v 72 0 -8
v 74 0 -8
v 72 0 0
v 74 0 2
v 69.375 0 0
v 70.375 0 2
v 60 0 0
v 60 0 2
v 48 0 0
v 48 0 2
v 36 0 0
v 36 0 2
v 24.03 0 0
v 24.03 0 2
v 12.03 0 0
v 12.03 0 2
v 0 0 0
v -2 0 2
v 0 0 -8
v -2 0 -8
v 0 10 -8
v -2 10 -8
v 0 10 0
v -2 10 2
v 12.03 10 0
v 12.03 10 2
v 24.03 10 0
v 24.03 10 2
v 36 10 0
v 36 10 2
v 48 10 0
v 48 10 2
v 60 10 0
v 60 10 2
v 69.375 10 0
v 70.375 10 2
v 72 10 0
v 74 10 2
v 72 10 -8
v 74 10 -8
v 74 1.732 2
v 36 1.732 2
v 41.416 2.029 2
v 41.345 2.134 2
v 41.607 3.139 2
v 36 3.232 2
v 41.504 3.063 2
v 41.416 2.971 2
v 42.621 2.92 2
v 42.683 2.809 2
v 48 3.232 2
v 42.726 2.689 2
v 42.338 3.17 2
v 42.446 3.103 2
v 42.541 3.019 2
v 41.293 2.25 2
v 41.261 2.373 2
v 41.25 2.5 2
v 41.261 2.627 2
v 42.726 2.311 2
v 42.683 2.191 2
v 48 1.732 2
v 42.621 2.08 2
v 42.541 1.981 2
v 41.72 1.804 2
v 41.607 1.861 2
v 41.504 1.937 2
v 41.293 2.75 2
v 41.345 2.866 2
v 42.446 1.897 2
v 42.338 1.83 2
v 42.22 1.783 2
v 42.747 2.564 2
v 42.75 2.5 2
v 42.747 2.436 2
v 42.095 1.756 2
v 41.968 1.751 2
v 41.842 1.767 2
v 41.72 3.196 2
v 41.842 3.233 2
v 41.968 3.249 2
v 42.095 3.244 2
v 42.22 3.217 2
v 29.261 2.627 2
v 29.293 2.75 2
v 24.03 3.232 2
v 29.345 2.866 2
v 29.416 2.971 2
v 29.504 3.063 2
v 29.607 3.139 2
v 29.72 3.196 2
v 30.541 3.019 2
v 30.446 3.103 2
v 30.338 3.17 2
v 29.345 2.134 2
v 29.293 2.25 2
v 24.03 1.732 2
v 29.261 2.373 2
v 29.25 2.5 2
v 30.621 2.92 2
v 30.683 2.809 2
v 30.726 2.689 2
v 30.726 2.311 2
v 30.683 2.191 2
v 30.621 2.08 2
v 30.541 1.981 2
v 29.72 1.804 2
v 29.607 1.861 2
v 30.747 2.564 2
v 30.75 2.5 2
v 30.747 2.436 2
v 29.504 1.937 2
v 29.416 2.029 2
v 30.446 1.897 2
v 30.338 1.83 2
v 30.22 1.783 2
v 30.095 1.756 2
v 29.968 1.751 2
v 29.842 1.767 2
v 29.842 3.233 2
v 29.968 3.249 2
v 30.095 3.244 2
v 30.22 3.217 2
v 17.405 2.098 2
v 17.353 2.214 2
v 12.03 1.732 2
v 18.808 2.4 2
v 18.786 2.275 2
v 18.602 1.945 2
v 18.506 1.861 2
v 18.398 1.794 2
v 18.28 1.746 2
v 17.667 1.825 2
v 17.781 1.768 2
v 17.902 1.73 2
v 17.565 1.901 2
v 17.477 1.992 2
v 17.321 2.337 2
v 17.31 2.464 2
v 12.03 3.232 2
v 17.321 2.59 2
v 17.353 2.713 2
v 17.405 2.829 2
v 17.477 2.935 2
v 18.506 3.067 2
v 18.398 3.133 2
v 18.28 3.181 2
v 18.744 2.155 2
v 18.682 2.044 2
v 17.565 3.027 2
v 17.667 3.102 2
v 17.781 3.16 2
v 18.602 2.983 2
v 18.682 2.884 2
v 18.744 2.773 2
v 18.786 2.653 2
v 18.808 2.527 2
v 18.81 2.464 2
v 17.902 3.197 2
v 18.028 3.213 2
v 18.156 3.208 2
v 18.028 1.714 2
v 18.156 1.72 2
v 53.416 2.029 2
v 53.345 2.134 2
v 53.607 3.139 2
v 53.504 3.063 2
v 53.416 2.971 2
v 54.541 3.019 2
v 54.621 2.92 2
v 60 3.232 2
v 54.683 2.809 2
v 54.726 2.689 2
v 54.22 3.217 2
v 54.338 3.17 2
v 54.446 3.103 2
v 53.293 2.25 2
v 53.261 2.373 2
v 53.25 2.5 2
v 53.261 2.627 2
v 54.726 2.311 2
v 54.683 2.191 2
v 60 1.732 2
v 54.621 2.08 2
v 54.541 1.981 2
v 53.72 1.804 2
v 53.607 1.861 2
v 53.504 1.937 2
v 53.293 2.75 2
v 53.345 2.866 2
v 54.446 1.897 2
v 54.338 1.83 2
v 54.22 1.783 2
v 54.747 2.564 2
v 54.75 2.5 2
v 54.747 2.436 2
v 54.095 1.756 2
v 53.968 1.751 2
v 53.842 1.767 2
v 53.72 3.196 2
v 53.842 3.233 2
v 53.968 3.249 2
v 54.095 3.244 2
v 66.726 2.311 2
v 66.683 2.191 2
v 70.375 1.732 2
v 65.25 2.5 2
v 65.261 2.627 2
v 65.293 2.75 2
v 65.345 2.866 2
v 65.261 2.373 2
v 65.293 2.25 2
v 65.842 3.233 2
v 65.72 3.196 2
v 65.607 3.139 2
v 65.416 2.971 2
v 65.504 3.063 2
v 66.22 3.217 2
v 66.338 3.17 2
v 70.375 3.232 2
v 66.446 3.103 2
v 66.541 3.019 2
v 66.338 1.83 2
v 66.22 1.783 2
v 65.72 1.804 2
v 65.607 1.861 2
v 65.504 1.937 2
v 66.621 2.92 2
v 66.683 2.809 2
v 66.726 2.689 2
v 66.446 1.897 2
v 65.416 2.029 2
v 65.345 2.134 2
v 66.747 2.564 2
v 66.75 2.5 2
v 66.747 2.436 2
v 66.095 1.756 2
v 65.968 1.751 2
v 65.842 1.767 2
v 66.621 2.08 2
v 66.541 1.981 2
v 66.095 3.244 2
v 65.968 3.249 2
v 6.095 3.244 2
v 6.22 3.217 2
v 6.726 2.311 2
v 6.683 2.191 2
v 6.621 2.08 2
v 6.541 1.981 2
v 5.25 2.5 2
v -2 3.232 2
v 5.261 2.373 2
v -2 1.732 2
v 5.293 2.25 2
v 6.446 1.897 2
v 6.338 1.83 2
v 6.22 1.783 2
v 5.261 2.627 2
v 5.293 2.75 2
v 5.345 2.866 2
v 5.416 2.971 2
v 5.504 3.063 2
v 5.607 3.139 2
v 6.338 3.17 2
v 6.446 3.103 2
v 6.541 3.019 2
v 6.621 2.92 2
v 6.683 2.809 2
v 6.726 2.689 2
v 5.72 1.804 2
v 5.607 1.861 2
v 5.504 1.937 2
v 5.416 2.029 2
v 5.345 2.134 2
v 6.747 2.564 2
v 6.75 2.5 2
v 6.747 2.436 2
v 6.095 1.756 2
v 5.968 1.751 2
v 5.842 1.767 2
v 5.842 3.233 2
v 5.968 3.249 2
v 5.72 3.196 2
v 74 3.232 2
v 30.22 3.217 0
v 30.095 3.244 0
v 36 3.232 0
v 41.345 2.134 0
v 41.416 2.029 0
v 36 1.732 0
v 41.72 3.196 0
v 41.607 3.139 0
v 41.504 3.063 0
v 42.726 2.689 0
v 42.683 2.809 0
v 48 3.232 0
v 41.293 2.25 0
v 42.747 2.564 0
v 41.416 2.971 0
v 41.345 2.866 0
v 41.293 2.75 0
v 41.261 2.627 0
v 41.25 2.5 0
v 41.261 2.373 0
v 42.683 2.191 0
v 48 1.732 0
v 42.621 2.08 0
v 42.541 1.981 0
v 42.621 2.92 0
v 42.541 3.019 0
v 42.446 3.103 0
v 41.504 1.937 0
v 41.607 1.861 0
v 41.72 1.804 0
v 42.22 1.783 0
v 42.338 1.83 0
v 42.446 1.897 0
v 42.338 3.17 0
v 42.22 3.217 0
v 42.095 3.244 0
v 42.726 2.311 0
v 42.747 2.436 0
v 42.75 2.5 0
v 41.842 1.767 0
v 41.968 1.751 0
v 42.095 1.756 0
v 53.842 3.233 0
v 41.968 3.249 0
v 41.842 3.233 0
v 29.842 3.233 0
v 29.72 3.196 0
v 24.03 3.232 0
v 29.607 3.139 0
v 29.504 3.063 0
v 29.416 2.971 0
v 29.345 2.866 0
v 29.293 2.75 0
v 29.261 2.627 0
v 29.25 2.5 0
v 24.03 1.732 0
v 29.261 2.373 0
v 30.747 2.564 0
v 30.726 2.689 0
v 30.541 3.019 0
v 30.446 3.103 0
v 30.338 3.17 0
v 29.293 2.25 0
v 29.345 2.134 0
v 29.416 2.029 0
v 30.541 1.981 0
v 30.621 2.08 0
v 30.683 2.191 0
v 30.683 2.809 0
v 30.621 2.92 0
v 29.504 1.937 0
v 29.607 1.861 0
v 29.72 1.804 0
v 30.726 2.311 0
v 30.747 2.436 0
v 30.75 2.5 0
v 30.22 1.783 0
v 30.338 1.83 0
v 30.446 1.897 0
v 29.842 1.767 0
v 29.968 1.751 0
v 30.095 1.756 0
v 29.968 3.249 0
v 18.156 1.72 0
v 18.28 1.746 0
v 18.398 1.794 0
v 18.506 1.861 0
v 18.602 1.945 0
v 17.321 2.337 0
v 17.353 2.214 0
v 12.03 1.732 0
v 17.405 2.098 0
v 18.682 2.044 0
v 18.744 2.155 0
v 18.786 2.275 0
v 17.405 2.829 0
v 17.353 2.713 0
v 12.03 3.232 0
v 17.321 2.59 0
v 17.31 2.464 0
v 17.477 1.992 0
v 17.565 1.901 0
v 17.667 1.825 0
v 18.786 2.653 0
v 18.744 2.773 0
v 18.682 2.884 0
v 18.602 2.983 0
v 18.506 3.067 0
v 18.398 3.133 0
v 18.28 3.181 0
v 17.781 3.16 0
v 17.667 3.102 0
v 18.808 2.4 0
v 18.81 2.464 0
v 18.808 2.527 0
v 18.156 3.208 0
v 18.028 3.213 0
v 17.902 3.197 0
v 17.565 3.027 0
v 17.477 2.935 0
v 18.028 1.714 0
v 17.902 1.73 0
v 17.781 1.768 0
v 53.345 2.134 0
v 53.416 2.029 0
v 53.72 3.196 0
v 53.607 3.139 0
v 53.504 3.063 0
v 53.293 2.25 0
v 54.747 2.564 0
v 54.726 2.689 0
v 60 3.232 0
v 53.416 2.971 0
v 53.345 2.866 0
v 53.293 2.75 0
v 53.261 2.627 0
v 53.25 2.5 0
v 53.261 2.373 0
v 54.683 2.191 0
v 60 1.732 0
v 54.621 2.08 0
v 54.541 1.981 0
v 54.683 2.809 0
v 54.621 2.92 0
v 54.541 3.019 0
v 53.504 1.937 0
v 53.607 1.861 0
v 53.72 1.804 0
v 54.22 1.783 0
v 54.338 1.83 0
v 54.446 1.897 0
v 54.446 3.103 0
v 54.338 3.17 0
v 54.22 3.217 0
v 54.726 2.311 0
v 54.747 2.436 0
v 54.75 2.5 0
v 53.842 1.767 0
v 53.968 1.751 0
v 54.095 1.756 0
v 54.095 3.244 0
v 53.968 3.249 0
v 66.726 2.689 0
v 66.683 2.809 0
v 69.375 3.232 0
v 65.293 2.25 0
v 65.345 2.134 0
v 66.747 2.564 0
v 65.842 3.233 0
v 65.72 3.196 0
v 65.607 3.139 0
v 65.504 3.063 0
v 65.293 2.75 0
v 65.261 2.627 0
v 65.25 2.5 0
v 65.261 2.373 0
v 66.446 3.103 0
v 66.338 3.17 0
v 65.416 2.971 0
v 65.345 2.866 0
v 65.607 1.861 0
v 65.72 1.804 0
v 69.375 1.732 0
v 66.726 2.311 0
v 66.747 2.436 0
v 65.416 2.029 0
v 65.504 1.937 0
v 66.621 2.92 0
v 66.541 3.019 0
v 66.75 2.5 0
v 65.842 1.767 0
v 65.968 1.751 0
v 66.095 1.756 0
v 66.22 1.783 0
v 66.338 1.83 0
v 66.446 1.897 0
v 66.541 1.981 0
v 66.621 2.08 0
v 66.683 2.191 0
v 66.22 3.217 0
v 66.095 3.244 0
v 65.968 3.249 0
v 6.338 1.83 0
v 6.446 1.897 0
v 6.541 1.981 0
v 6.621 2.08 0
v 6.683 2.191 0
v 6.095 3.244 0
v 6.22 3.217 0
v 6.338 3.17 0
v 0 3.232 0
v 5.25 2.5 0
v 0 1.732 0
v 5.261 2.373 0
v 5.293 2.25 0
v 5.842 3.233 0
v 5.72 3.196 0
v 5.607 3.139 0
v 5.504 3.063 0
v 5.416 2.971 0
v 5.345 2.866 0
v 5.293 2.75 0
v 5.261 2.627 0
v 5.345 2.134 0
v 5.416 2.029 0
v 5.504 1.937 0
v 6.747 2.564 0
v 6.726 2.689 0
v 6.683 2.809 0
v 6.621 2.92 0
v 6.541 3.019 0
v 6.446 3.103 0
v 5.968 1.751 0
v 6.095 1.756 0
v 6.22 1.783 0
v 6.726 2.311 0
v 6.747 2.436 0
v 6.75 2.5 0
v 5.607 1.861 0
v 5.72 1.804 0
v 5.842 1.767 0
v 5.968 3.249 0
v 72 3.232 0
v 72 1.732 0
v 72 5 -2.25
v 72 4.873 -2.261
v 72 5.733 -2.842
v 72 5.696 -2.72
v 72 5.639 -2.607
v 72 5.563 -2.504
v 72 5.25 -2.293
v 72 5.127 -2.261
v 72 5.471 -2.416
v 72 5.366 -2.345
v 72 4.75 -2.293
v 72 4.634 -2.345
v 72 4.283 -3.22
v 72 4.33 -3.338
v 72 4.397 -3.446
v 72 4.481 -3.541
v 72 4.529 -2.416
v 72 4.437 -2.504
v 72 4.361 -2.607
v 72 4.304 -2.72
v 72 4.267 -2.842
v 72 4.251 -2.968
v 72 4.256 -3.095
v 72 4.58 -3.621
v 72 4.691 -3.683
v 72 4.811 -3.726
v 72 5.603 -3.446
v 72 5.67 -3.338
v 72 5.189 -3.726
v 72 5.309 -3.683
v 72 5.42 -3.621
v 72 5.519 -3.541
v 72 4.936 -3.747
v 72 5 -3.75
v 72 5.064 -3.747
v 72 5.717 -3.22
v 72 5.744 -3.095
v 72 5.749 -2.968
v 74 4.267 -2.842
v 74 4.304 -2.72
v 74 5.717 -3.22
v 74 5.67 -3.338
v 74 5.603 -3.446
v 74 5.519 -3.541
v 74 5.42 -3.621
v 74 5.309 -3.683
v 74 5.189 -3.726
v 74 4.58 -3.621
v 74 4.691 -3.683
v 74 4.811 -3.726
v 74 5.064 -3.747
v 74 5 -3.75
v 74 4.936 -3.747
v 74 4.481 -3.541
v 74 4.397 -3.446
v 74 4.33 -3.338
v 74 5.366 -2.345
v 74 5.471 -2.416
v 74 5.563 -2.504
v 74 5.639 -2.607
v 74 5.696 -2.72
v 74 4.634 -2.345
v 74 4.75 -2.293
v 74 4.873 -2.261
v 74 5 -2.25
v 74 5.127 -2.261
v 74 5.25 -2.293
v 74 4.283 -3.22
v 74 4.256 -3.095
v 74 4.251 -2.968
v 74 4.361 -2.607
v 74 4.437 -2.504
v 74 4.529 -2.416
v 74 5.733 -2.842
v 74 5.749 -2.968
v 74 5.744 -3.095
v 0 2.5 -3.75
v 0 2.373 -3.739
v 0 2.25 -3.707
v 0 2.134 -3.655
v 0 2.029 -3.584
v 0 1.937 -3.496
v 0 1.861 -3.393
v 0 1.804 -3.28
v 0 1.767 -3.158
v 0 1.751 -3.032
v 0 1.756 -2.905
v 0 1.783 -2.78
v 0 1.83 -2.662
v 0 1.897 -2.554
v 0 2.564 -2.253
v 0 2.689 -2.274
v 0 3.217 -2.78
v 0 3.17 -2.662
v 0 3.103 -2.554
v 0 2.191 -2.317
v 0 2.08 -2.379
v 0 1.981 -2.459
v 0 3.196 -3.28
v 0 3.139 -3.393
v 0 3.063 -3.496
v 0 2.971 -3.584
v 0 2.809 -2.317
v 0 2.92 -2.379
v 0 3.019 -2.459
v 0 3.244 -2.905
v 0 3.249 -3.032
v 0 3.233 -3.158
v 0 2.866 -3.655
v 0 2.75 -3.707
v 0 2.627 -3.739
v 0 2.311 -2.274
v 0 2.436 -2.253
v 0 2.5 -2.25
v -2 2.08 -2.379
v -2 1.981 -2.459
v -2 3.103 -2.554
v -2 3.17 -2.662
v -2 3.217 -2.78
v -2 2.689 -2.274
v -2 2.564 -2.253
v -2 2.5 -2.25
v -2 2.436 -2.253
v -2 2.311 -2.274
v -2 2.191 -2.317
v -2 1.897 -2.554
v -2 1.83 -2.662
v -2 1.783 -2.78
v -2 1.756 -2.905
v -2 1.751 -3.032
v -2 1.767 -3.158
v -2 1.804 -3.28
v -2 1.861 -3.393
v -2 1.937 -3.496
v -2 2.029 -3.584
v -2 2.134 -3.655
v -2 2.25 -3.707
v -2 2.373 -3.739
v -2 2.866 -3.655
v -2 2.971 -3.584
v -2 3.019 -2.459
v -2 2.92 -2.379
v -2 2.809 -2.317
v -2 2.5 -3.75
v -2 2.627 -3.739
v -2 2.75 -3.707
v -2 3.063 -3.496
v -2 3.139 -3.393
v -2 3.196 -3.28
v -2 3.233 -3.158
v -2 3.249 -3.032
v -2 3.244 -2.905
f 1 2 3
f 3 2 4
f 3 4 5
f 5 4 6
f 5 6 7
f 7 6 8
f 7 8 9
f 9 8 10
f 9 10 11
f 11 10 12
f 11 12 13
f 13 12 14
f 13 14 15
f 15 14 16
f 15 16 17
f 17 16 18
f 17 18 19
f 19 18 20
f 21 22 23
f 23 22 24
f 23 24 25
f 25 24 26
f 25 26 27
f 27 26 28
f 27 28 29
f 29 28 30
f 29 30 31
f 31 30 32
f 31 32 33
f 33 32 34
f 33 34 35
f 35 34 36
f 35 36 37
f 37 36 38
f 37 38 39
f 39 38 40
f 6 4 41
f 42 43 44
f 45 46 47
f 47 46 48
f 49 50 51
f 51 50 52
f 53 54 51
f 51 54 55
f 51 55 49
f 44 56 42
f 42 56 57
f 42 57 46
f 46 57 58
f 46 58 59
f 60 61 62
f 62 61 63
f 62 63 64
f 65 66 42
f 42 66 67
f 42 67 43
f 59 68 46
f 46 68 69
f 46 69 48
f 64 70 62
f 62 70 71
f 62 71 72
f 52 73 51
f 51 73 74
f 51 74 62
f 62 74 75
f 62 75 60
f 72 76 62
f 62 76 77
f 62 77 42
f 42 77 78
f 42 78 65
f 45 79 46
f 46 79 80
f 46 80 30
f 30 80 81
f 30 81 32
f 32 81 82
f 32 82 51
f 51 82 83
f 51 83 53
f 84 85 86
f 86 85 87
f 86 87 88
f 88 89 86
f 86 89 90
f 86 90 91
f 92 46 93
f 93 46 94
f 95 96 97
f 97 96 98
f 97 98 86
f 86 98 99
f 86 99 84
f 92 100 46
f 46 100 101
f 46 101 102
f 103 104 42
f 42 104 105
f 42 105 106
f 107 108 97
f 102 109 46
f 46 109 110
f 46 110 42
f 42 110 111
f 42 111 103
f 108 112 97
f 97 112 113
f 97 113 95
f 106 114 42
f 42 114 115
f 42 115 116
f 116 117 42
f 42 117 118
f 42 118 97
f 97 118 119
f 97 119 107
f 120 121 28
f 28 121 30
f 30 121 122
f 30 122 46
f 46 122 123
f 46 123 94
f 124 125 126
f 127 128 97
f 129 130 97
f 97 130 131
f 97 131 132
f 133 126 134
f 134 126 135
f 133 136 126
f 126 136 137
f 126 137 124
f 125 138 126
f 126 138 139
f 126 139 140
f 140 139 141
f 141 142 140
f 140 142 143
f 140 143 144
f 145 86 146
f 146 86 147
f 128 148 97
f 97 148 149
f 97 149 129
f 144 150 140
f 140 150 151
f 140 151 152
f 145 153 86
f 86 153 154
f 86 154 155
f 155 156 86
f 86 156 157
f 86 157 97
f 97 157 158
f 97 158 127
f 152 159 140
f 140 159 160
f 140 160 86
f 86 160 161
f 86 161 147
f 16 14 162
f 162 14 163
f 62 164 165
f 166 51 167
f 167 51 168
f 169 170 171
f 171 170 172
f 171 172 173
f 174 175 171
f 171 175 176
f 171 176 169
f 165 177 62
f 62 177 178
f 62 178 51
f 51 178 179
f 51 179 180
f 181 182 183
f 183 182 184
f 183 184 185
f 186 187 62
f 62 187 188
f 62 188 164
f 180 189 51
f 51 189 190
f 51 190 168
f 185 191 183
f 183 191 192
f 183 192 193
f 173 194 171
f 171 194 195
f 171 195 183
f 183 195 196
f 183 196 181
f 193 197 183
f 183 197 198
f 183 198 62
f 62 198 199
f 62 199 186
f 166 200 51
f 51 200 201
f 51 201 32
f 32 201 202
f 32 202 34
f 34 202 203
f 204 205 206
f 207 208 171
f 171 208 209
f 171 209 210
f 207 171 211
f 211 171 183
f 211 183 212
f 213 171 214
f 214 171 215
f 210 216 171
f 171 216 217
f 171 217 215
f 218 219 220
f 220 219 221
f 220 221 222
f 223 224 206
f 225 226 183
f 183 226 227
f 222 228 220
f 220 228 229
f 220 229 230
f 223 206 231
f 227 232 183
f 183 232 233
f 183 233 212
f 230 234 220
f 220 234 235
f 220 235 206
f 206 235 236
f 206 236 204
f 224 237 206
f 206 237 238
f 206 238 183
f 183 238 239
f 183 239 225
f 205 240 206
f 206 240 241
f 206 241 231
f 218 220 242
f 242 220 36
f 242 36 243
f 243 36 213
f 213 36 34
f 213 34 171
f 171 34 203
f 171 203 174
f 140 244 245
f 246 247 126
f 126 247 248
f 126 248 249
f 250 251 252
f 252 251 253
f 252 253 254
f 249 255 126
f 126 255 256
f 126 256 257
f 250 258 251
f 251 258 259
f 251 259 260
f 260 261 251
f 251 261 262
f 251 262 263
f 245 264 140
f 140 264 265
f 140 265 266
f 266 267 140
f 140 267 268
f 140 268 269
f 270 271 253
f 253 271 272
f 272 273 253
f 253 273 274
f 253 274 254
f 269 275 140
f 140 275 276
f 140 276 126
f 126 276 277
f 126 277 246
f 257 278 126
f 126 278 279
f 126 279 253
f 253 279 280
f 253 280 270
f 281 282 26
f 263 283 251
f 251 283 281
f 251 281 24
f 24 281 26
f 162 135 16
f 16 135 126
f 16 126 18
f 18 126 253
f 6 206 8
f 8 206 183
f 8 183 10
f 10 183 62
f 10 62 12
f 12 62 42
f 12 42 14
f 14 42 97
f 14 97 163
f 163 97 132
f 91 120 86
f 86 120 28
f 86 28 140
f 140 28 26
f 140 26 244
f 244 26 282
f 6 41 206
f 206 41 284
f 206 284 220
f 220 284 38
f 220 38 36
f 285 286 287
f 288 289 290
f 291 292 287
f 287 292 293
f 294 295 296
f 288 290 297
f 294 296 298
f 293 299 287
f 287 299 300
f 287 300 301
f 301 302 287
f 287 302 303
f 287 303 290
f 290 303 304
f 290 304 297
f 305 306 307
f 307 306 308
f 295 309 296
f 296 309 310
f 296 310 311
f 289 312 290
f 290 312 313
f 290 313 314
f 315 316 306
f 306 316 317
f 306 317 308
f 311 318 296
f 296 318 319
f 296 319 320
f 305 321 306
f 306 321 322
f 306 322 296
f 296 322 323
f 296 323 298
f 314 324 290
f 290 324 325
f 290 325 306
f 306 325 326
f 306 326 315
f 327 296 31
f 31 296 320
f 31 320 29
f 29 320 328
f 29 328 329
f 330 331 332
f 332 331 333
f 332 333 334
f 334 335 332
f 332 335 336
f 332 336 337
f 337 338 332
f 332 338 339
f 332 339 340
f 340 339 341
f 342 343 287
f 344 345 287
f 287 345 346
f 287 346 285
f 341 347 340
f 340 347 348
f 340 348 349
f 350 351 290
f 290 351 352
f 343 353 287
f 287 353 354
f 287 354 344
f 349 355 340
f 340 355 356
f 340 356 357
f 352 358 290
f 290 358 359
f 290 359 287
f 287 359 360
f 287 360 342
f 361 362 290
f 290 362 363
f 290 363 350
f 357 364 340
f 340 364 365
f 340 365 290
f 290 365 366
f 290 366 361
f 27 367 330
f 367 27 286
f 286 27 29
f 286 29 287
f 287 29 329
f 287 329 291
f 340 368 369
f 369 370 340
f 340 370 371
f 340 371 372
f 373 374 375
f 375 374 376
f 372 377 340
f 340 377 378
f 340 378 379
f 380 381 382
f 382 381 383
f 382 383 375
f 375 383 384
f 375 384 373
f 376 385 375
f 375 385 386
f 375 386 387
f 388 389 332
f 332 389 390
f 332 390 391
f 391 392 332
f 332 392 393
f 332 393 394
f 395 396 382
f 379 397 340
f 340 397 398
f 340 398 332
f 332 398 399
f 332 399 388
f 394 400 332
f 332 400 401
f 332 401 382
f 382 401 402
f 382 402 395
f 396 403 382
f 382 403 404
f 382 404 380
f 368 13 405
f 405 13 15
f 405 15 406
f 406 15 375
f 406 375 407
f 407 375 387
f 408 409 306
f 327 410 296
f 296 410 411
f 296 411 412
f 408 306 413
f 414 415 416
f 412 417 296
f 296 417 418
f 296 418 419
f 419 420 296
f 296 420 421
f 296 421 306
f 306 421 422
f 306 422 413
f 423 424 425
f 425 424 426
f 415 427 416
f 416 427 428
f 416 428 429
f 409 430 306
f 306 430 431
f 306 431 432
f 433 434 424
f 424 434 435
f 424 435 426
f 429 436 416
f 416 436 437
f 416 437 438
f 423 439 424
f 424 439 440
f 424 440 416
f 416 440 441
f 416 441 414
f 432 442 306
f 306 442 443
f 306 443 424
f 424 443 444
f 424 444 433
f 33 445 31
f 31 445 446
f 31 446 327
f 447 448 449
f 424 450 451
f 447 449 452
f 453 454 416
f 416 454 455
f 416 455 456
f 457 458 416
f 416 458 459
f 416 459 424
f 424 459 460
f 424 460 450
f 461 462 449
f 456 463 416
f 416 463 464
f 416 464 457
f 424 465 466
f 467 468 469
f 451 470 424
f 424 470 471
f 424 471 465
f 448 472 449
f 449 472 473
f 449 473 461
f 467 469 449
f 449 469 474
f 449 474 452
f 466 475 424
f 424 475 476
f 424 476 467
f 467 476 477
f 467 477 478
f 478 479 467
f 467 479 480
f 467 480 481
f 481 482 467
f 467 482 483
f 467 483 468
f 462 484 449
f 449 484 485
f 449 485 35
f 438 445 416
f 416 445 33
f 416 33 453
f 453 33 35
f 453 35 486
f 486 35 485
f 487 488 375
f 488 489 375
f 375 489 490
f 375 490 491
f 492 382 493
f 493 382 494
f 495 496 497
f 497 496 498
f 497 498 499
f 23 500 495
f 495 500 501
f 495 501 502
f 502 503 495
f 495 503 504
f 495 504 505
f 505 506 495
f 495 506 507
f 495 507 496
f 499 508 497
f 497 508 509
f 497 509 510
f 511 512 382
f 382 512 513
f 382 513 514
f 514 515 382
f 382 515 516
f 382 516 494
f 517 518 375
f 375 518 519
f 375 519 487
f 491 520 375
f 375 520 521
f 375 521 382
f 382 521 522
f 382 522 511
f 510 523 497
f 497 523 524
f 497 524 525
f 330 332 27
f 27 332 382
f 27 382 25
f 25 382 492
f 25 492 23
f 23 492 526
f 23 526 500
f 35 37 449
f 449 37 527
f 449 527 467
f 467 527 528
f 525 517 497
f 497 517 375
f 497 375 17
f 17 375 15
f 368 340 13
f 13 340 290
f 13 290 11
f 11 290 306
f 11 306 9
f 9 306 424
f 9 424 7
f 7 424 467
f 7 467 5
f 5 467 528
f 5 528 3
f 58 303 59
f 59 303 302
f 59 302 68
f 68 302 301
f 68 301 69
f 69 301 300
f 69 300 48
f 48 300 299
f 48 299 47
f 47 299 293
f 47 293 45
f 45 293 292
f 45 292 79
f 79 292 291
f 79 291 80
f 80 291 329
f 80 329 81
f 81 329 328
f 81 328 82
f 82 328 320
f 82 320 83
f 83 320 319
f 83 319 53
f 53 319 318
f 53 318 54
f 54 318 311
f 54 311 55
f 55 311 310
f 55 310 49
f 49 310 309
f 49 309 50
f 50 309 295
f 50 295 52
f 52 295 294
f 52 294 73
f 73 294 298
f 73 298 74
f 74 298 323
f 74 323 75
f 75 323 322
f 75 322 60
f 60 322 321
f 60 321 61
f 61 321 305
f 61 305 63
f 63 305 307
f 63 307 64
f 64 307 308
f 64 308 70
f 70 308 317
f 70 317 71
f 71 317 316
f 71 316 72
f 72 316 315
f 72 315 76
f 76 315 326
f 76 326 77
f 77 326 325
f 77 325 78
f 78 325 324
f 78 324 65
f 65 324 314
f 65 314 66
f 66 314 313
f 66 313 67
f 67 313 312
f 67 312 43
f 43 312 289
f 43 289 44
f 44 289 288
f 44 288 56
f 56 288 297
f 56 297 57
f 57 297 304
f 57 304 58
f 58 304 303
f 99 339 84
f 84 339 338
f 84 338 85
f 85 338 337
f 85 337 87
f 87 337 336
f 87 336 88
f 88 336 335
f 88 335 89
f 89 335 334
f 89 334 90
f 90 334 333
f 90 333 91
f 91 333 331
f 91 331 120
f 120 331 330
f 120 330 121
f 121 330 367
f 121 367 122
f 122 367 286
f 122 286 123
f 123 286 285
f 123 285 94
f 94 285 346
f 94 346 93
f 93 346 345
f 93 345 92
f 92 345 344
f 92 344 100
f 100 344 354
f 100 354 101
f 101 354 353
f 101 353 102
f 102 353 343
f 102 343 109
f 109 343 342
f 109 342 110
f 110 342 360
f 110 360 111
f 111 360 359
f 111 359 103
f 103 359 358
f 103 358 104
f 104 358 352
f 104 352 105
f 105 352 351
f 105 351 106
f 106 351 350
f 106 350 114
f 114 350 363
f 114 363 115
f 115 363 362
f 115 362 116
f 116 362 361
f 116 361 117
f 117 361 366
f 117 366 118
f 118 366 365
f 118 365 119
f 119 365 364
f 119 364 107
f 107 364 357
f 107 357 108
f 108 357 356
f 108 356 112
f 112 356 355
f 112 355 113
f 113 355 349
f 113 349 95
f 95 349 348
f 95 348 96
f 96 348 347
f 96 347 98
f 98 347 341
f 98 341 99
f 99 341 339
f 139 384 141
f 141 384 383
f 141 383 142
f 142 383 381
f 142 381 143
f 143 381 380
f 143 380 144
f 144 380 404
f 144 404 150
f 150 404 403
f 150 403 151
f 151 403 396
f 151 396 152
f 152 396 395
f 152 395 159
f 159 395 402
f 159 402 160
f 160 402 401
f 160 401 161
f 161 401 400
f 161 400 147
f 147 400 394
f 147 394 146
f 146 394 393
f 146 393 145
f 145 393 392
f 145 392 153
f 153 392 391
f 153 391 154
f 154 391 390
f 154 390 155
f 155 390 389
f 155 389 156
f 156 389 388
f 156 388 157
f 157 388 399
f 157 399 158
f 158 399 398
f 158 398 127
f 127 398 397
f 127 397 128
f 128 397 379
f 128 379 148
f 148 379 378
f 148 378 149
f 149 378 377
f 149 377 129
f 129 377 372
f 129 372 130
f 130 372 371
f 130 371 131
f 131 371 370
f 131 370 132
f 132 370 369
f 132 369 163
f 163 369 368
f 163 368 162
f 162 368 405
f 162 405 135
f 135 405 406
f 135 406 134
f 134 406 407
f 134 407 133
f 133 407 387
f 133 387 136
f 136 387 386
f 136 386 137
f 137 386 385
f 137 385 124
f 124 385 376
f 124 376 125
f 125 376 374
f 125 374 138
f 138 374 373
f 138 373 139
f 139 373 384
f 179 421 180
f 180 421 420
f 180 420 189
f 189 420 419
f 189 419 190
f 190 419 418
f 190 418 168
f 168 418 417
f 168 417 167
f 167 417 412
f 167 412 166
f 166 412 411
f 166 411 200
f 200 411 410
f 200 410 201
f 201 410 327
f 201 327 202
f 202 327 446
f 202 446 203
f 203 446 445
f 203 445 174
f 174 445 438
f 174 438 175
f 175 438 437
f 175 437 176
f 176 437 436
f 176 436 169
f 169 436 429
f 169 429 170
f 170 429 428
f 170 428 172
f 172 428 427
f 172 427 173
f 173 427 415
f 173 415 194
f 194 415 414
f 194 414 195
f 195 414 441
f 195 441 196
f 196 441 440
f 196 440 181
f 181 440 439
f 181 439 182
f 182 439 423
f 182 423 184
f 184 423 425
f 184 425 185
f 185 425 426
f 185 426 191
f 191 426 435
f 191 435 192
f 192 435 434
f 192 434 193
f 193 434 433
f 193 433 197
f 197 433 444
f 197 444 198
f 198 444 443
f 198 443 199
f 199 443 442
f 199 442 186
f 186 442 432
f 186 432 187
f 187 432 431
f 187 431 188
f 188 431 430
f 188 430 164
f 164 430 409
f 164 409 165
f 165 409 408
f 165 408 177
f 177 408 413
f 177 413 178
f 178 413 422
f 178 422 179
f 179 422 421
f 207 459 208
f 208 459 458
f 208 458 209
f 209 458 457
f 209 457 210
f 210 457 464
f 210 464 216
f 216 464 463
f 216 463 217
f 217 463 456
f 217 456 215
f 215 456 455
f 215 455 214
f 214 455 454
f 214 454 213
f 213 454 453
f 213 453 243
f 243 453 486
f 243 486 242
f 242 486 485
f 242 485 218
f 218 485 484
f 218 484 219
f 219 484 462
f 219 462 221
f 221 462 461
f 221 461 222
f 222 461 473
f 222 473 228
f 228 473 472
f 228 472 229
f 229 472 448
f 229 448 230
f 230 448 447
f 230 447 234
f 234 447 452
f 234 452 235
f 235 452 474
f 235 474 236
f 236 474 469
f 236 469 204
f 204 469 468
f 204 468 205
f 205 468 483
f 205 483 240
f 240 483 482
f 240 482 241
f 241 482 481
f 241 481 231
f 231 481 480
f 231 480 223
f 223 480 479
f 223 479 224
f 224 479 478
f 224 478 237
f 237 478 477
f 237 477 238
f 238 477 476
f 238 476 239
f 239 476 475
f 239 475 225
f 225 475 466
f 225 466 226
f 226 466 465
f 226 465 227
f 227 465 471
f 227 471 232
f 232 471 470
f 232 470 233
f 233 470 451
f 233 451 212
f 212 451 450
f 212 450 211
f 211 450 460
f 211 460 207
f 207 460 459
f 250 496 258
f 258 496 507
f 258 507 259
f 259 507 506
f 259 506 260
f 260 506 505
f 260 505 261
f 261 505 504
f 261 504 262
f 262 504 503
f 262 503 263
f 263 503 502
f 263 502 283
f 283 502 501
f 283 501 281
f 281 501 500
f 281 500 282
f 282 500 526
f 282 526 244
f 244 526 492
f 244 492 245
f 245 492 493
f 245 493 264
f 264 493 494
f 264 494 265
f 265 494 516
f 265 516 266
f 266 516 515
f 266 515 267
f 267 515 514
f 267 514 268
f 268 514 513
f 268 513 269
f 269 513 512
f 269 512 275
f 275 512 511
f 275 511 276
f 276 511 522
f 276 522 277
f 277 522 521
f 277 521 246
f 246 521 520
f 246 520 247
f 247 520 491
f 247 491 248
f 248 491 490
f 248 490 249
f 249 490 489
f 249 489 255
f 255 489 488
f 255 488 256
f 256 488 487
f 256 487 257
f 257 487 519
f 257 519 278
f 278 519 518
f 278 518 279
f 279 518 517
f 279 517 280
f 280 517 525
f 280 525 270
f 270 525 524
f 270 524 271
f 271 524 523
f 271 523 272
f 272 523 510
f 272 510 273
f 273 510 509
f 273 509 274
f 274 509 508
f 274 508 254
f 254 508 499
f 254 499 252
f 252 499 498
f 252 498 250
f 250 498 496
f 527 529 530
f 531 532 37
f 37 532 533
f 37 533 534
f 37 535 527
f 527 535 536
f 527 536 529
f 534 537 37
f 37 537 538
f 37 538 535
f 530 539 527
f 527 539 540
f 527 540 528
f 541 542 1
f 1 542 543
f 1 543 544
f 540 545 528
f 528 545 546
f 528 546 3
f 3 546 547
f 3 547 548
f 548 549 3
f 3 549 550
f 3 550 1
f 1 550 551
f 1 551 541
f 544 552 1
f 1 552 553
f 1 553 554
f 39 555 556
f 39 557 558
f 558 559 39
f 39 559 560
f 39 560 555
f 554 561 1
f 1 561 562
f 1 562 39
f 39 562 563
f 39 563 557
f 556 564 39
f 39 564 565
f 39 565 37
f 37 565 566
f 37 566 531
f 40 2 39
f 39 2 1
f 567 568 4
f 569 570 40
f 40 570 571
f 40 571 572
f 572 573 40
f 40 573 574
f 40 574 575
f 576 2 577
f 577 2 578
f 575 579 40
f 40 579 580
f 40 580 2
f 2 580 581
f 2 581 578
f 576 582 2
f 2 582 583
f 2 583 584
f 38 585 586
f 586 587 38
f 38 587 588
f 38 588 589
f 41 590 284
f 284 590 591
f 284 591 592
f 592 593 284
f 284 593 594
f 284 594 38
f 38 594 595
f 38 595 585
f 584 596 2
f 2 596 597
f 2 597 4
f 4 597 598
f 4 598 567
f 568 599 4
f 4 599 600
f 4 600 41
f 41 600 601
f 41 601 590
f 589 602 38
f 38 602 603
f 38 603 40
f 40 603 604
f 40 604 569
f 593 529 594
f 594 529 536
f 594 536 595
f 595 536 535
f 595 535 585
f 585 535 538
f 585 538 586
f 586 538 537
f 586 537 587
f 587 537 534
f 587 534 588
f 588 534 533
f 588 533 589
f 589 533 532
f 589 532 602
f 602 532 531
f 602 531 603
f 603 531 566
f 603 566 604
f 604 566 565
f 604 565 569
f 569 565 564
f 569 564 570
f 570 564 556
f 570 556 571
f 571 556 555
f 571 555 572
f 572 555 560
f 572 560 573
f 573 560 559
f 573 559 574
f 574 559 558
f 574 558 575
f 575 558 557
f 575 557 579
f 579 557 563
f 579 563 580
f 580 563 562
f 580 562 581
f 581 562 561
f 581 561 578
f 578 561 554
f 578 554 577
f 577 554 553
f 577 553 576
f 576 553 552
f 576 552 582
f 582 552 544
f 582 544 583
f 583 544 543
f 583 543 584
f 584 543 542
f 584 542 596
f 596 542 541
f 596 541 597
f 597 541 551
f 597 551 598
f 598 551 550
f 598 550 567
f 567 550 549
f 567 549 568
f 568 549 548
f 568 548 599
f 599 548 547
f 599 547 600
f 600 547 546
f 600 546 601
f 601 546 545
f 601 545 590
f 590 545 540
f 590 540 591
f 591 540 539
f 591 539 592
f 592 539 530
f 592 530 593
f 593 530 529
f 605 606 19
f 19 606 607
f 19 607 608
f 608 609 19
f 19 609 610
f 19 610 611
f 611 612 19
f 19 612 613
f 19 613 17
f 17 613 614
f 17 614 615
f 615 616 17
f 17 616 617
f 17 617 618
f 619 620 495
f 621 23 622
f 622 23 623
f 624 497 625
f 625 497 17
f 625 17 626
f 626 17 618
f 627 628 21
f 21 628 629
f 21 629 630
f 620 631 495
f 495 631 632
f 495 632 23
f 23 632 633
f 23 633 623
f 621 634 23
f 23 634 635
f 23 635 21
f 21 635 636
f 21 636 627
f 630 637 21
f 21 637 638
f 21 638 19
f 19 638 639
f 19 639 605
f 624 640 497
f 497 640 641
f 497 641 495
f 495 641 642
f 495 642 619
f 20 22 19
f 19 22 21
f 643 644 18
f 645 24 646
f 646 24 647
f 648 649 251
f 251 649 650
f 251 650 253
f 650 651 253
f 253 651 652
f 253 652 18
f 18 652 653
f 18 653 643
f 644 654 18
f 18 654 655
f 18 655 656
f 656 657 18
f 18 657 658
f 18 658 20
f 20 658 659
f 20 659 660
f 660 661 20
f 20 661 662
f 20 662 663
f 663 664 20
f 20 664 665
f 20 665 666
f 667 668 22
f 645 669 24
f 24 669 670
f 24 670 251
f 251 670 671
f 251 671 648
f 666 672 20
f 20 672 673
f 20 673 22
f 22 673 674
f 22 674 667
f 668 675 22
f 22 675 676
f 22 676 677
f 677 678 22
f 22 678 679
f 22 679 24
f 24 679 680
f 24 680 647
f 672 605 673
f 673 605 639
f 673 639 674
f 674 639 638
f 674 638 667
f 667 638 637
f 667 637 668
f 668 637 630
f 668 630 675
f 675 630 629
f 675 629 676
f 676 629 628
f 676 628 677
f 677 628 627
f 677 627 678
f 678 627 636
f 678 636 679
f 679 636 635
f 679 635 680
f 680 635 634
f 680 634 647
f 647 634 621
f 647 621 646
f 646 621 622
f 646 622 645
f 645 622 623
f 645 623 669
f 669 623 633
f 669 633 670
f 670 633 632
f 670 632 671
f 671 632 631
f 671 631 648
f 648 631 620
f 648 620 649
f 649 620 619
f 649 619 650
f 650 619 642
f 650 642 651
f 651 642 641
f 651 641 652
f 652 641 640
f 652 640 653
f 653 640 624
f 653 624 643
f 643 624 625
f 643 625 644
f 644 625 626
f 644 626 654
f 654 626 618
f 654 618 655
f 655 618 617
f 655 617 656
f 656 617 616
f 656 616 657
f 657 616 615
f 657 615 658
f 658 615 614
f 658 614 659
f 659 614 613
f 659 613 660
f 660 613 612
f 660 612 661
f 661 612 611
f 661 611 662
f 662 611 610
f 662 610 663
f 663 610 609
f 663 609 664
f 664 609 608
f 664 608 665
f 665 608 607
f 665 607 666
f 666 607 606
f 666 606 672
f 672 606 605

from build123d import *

# Parameters (mm, degrees)
SKETCH1_W           = 72
SKETCH1_H           = 10
BOSS_EXTRUDE1_DEPTH = 2
SKETCH3_R           = 0.75
CUT_EXTRUDE2_DEPTH  = 2
SKETCH4_W           = 10
SKETCH4_H           = 10
BOSS_EXTRUDE2_DEPTH = 2
SKETCH5_R           = 0.75
CUT_EXTRUDE4_DEPTH  = 2
SKETCH6_W           = 10
SKETCH6_H           = 10
BOSS_EXTRUDE3_DEPTH = 2
SKETCH7_R           = 0.75
CUT_EXTRUDE5_DEPTH  = 2


with BuildPart() as part:
    # Sketch1 → Boss-Extrude1 (new body)
    with BuildSketch(Plane.XY):
        with Locations((36, 5)):
            Rectangle(SKETCH1_W, SKETCH1_H)
    extrude(amount=BOSS_EXTRUDE1_DEPTH)

    # Sketch3 → Cut-Extrude2 (cut)
    with BuildSketch(Plane.XY):
        with Locations((42, 2.5)):
            Circle(SKETCH3_R)
        with Locations((54, 2.5)):
            Circle(SKETCH3_R)
        with Locations((66, 2.5)):
            Circle(SKETCH3_R)
        with Locations((30, 2.5)):
            Circle(SKETCH3_R)
        with Locations((18.06024044, 2.463599586)):
            Circle(SKETCH3_R)
        with Locations((6, 2.5)):
            Circle(SKETCH3_R)
    extrude(amount=CUT_EXTRUDE2_DEPTH, mode=Mode.SUBTRACT)

    # Sketch4 → Boss-Extrude2 (add)
    with BuildSketch(Plane(origin=(72, 0, 0), x_dir=(0, 0, -1), z_dir=(1, 0, 0))):
        with Locations((3, 5)):
            Rectangle(SKETCH4_W, SKETCH4_H)
    extrude(amount=BOSS_EXTRUDE2_DEPTH)

    # Sketch5 → Cut-Extrude4 (cut)
    with BuildSketch(Plane(origin=(72, 0, 0), x_dir=(0, 0, -1), z_dir=(1, 0, 0))):
        with Locations((3, 5)):
            Circle(SKETCH5_R)
    extrude(amount=CUT_EXTRUDE4_DEPTH, mode=Mode.SUBTRACT)

    # Sketch6 → Boss-Extrude3 (add)
    with BuildSketch(Plane.ZY):
        with Locations((-3, 5)):
            Rectangle(SKETCH6_W, SKETCH6_H)
    extrude(amount=BOSS_EXTRUDE3_DEPTH)

    # Sketch7 → Cut-Extrude5 (cut)
    with BuildSketch(Plane.ZY):
        with Locations((-3, 2.5)):
            Circle(SKETCH7_R)
    extrude(amount=CUT_EXTRUDE5_DEPTH, mode=Mode.SUBTRACT)


solid = part.part
